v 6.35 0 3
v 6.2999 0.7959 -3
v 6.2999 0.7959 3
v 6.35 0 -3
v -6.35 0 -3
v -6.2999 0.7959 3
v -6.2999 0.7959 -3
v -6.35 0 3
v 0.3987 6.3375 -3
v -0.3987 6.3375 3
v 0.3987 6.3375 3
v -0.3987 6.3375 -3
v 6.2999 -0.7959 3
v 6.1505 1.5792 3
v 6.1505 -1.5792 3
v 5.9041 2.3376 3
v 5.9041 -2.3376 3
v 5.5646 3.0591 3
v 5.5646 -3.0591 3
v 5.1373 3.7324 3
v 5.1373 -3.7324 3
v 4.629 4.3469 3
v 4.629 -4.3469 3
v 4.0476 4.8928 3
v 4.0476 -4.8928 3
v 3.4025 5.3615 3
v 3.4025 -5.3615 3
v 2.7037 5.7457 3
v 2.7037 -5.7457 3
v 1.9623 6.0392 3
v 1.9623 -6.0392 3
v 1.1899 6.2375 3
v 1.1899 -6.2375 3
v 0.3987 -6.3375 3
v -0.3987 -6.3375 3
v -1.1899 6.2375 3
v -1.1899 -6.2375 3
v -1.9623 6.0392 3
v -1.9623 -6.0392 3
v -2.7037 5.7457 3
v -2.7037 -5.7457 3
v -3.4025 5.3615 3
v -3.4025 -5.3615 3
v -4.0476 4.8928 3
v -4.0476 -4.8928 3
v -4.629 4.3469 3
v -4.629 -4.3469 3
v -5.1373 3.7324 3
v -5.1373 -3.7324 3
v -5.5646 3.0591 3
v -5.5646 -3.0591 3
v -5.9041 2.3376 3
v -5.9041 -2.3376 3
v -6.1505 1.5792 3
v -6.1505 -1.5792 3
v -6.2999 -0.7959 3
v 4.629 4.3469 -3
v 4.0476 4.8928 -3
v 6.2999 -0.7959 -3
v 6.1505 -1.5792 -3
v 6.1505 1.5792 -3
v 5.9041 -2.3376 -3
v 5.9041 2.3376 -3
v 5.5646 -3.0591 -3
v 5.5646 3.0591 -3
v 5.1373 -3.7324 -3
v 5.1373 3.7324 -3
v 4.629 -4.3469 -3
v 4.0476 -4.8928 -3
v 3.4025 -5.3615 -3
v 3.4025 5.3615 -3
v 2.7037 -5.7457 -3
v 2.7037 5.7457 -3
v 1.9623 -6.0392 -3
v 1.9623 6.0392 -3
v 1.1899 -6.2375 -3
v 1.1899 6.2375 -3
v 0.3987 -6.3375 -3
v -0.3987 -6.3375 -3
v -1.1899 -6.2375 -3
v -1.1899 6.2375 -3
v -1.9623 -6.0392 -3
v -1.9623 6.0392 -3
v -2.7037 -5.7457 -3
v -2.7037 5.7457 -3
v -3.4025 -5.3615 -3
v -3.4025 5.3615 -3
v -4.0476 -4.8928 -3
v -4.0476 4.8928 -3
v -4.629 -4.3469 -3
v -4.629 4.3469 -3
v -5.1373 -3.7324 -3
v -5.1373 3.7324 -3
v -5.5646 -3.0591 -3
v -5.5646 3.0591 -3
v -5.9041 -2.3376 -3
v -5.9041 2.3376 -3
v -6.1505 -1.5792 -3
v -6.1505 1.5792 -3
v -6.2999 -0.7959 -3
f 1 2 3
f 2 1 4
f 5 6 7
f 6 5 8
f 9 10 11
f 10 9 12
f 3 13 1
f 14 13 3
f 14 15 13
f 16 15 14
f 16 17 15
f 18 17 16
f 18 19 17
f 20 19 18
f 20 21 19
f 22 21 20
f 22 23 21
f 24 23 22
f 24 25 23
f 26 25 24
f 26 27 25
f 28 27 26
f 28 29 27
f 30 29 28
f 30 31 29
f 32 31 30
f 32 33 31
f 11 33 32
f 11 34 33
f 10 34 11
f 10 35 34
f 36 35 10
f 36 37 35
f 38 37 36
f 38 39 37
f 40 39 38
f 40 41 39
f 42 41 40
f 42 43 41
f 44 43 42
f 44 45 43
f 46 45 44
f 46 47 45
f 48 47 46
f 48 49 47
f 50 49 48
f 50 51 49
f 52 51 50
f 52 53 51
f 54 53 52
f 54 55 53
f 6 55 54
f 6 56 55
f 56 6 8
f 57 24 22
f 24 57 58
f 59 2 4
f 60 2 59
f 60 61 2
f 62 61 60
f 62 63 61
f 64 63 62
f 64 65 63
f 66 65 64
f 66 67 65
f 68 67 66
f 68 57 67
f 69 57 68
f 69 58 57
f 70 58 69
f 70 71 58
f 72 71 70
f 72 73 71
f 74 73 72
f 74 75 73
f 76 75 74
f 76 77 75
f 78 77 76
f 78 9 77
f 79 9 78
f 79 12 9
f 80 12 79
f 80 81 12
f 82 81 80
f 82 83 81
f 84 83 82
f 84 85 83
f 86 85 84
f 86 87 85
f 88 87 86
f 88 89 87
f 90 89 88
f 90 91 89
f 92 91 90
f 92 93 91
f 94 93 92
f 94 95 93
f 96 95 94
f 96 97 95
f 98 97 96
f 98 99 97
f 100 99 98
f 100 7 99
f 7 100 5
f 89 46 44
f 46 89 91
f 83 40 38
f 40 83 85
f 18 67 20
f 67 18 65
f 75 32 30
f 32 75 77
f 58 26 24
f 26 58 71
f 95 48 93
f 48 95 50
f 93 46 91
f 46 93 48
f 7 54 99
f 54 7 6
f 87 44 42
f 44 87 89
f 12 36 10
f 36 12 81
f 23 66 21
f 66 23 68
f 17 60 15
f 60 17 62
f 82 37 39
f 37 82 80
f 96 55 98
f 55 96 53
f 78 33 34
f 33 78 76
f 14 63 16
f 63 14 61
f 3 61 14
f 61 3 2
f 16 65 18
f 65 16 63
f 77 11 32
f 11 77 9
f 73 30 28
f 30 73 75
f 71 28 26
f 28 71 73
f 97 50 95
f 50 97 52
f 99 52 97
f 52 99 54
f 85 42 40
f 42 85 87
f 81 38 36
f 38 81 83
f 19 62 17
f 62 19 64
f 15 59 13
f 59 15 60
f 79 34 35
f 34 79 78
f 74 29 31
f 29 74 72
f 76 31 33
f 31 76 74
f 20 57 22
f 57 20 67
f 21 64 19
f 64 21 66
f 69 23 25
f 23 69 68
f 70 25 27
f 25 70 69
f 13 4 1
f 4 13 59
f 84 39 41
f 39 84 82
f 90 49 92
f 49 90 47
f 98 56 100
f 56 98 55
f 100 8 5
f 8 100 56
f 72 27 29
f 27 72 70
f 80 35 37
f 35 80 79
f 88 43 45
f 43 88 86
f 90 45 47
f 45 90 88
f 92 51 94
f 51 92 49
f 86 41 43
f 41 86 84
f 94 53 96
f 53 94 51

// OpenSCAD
$fn = 50;


difference() {
	union() {
		translate(v = [0, 0, -3.0000000000]) {
			cylinder(h = 6, r = 6.3500000000);
		}
	}
	union() {
		translate(v = [0, 0, -100.0000000000]) {
			cylinder(h = 200, r = 0);
		}
	}
}
